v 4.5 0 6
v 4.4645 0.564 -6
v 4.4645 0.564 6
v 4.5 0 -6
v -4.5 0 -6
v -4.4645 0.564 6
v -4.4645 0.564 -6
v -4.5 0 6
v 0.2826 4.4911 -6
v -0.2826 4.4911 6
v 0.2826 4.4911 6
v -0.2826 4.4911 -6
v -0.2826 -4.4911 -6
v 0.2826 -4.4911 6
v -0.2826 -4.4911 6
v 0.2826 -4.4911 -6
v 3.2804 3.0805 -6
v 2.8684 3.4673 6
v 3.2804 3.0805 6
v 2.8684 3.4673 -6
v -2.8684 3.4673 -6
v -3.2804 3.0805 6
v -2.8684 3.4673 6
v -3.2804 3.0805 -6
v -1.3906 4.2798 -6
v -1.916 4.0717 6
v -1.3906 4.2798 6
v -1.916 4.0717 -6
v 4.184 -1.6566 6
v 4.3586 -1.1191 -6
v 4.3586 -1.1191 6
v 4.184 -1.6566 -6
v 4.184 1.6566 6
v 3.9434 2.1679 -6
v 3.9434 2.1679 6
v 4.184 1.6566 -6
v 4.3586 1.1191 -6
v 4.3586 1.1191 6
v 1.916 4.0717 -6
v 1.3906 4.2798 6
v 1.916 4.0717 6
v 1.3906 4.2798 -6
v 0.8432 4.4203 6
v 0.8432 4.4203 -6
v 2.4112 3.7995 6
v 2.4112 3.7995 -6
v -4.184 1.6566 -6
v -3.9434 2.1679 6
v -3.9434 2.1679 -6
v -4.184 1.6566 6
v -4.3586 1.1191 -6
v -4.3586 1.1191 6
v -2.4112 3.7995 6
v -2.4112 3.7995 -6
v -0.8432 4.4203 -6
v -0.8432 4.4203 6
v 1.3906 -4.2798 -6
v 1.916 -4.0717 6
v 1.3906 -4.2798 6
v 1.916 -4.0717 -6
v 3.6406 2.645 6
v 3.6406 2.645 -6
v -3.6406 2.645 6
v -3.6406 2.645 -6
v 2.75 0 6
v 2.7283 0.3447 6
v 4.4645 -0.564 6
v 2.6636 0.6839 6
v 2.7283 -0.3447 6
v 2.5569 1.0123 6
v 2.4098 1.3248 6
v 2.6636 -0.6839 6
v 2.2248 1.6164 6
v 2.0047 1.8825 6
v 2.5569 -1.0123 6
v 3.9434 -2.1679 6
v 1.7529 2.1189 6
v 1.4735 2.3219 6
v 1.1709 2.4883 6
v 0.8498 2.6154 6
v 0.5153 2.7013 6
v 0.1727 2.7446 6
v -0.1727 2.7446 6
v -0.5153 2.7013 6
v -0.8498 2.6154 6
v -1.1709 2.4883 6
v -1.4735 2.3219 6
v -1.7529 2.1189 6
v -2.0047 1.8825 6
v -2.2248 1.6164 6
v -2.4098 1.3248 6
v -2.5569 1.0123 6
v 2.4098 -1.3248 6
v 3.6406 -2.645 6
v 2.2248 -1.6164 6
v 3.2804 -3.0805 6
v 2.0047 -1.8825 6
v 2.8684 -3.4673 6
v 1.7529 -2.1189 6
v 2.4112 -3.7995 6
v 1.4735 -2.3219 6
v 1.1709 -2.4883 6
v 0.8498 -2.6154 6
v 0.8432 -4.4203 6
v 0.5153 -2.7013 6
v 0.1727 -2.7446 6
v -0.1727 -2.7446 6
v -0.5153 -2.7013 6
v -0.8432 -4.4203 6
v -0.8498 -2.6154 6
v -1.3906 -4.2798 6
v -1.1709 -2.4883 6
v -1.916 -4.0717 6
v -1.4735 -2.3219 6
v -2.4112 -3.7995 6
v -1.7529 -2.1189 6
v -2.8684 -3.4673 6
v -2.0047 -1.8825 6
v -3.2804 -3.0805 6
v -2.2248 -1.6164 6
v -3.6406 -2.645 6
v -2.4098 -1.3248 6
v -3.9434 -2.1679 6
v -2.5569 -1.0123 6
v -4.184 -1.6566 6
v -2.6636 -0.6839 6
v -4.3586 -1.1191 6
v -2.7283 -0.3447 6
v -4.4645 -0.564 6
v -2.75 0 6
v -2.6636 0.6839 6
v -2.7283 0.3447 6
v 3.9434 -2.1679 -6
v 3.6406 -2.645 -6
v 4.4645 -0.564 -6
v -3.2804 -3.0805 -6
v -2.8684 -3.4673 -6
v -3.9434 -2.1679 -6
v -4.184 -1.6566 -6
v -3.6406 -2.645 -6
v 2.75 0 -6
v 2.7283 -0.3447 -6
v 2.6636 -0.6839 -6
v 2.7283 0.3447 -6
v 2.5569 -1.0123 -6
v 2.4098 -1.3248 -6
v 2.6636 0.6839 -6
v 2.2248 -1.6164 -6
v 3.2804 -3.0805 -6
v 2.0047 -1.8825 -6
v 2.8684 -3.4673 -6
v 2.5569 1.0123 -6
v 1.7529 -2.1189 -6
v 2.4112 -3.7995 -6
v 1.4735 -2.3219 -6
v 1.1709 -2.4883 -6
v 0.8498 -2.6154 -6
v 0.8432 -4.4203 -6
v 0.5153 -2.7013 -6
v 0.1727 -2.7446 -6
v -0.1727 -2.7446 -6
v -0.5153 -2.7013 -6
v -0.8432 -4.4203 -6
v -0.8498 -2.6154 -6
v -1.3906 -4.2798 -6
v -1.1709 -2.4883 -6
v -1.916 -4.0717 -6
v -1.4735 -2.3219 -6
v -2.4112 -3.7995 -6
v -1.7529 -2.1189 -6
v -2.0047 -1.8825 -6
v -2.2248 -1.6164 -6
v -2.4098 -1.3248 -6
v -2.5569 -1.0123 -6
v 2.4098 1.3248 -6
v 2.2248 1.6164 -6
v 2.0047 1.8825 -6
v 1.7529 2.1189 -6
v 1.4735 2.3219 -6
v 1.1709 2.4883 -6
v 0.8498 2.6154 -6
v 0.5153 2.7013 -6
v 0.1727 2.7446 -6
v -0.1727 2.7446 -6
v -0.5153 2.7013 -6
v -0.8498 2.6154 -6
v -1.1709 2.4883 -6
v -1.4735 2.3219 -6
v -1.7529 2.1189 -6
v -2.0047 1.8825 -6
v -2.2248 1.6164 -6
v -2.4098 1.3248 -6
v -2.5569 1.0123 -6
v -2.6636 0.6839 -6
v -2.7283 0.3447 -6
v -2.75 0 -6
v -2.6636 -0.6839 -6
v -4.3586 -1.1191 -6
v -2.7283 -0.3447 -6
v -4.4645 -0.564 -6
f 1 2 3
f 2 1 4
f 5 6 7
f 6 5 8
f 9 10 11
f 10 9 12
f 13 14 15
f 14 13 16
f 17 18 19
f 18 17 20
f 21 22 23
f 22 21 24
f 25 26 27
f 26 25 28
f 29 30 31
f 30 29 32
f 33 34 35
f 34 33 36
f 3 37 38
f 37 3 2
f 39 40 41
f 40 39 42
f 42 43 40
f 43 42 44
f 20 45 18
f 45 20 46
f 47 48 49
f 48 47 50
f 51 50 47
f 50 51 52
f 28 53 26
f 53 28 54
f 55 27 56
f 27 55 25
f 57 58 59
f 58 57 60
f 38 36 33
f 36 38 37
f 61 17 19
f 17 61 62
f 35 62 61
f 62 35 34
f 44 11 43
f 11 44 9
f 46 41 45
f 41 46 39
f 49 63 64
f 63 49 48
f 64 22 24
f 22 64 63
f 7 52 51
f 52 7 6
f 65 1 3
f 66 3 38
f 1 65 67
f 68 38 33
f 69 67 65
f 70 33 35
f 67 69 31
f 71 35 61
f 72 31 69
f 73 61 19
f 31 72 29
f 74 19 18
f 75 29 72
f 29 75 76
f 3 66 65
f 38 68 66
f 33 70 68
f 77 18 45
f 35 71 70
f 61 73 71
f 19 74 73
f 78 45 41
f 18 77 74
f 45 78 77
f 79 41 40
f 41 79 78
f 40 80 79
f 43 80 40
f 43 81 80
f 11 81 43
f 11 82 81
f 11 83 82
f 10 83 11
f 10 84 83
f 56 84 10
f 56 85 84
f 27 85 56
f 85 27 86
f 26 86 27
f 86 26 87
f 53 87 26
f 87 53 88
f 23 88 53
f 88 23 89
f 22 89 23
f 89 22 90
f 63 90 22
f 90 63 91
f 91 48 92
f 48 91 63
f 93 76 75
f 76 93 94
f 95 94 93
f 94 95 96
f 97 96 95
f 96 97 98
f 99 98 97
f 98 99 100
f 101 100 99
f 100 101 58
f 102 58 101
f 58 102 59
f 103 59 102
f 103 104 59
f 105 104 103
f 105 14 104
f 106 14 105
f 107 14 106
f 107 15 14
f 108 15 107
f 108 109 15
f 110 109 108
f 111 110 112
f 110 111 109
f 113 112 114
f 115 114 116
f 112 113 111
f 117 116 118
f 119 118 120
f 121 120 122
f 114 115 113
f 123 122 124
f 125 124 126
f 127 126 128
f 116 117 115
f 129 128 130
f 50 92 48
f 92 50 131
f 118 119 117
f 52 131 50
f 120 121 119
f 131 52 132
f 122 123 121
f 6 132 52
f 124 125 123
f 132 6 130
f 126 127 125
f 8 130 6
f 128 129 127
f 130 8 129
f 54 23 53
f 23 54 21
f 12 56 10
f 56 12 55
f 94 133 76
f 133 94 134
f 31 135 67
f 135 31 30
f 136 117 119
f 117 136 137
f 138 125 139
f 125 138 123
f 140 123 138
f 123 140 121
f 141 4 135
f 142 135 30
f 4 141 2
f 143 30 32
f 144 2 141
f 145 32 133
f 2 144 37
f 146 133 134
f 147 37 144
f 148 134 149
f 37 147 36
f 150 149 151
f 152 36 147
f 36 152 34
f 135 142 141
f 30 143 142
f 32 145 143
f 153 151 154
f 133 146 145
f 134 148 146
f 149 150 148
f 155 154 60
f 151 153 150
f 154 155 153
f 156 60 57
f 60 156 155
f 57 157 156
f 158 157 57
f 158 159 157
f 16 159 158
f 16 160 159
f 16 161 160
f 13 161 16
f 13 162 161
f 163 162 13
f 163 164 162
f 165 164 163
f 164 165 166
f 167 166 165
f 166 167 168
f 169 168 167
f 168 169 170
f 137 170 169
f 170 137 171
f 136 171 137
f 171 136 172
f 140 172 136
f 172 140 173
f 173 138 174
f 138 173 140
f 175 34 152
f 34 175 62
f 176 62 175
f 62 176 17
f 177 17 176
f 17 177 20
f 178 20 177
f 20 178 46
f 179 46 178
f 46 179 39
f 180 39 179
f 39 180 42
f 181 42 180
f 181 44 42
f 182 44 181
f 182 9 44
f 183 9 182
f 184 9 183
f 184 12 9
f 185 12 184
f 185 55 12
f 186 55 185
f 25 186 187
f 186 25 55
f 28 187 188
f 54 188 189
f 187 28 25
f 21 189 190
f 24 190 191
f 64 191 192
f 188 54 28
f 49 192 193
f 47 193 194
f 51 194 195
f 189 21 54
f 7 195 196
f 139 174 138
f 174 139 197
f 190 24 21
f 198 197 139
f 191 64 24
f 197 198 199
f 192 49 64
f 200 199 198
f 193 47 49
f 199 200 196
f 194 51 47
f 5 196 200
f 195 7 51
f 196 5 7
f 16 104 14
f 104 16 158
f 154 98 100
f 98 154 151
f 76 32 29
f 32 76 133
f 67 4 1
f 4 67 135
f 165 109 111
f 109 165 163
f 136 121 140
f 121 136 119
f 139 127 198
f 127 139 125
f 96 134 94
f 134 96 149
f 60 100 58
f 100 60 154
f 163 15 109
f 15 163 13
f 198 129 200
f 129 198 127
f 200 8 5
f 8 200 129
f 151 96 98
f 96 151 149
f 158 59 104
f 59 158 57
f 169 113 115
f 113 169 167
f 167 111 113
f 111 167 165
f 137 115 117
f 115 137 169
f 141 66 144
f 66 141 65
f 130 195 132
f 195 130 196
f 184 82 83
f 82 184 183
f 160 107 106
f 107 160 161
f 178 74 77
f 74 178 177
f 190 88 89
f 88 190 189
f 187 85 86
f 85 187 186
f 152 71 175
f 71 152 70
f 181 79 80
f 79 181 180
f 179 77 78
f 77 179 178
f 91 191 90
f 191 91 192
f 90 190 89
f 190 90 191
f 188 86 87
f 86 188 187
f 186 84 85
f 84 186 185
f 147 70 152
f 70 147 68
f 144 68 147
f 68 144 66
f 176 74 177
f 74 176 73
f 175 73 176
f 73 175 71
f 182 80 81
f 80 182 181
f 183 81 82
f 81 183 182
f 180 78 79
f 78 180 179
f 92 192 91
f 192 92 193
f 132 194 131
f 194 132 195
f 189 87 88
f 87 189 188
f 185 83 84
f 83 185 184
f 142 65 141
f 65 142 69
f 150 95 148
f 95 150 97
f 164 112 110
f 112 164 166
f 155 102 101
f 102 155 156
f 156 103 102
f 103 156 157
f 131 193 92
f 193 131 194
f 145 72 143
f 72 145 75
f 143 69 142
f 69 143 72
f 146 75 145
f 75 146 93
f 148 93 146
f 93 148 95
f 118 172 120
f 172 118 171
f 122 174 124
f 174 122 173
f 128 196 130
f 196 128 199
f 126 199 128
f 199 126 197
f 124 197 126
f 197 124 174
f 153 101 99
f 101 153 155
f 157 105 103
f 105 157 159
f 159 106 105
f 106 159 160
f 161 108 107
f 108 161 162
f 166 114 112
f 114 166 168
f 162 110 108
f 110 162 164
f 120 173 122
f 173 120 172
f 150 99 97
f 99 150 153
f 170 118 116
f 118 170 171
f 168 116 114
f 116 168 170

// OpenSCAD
$fn = 50;


difference() {
	union() {
		translate(v = [0, 0, -6.0000000000]) {
			cylinder(h = 12, r = 4.5000000000);
		}
	}
	union() {
		translate(v = [0, 0, -100.0000000000]) {
			cylinder(h = 200, r = 2.7500000000);
		}
	}
}
